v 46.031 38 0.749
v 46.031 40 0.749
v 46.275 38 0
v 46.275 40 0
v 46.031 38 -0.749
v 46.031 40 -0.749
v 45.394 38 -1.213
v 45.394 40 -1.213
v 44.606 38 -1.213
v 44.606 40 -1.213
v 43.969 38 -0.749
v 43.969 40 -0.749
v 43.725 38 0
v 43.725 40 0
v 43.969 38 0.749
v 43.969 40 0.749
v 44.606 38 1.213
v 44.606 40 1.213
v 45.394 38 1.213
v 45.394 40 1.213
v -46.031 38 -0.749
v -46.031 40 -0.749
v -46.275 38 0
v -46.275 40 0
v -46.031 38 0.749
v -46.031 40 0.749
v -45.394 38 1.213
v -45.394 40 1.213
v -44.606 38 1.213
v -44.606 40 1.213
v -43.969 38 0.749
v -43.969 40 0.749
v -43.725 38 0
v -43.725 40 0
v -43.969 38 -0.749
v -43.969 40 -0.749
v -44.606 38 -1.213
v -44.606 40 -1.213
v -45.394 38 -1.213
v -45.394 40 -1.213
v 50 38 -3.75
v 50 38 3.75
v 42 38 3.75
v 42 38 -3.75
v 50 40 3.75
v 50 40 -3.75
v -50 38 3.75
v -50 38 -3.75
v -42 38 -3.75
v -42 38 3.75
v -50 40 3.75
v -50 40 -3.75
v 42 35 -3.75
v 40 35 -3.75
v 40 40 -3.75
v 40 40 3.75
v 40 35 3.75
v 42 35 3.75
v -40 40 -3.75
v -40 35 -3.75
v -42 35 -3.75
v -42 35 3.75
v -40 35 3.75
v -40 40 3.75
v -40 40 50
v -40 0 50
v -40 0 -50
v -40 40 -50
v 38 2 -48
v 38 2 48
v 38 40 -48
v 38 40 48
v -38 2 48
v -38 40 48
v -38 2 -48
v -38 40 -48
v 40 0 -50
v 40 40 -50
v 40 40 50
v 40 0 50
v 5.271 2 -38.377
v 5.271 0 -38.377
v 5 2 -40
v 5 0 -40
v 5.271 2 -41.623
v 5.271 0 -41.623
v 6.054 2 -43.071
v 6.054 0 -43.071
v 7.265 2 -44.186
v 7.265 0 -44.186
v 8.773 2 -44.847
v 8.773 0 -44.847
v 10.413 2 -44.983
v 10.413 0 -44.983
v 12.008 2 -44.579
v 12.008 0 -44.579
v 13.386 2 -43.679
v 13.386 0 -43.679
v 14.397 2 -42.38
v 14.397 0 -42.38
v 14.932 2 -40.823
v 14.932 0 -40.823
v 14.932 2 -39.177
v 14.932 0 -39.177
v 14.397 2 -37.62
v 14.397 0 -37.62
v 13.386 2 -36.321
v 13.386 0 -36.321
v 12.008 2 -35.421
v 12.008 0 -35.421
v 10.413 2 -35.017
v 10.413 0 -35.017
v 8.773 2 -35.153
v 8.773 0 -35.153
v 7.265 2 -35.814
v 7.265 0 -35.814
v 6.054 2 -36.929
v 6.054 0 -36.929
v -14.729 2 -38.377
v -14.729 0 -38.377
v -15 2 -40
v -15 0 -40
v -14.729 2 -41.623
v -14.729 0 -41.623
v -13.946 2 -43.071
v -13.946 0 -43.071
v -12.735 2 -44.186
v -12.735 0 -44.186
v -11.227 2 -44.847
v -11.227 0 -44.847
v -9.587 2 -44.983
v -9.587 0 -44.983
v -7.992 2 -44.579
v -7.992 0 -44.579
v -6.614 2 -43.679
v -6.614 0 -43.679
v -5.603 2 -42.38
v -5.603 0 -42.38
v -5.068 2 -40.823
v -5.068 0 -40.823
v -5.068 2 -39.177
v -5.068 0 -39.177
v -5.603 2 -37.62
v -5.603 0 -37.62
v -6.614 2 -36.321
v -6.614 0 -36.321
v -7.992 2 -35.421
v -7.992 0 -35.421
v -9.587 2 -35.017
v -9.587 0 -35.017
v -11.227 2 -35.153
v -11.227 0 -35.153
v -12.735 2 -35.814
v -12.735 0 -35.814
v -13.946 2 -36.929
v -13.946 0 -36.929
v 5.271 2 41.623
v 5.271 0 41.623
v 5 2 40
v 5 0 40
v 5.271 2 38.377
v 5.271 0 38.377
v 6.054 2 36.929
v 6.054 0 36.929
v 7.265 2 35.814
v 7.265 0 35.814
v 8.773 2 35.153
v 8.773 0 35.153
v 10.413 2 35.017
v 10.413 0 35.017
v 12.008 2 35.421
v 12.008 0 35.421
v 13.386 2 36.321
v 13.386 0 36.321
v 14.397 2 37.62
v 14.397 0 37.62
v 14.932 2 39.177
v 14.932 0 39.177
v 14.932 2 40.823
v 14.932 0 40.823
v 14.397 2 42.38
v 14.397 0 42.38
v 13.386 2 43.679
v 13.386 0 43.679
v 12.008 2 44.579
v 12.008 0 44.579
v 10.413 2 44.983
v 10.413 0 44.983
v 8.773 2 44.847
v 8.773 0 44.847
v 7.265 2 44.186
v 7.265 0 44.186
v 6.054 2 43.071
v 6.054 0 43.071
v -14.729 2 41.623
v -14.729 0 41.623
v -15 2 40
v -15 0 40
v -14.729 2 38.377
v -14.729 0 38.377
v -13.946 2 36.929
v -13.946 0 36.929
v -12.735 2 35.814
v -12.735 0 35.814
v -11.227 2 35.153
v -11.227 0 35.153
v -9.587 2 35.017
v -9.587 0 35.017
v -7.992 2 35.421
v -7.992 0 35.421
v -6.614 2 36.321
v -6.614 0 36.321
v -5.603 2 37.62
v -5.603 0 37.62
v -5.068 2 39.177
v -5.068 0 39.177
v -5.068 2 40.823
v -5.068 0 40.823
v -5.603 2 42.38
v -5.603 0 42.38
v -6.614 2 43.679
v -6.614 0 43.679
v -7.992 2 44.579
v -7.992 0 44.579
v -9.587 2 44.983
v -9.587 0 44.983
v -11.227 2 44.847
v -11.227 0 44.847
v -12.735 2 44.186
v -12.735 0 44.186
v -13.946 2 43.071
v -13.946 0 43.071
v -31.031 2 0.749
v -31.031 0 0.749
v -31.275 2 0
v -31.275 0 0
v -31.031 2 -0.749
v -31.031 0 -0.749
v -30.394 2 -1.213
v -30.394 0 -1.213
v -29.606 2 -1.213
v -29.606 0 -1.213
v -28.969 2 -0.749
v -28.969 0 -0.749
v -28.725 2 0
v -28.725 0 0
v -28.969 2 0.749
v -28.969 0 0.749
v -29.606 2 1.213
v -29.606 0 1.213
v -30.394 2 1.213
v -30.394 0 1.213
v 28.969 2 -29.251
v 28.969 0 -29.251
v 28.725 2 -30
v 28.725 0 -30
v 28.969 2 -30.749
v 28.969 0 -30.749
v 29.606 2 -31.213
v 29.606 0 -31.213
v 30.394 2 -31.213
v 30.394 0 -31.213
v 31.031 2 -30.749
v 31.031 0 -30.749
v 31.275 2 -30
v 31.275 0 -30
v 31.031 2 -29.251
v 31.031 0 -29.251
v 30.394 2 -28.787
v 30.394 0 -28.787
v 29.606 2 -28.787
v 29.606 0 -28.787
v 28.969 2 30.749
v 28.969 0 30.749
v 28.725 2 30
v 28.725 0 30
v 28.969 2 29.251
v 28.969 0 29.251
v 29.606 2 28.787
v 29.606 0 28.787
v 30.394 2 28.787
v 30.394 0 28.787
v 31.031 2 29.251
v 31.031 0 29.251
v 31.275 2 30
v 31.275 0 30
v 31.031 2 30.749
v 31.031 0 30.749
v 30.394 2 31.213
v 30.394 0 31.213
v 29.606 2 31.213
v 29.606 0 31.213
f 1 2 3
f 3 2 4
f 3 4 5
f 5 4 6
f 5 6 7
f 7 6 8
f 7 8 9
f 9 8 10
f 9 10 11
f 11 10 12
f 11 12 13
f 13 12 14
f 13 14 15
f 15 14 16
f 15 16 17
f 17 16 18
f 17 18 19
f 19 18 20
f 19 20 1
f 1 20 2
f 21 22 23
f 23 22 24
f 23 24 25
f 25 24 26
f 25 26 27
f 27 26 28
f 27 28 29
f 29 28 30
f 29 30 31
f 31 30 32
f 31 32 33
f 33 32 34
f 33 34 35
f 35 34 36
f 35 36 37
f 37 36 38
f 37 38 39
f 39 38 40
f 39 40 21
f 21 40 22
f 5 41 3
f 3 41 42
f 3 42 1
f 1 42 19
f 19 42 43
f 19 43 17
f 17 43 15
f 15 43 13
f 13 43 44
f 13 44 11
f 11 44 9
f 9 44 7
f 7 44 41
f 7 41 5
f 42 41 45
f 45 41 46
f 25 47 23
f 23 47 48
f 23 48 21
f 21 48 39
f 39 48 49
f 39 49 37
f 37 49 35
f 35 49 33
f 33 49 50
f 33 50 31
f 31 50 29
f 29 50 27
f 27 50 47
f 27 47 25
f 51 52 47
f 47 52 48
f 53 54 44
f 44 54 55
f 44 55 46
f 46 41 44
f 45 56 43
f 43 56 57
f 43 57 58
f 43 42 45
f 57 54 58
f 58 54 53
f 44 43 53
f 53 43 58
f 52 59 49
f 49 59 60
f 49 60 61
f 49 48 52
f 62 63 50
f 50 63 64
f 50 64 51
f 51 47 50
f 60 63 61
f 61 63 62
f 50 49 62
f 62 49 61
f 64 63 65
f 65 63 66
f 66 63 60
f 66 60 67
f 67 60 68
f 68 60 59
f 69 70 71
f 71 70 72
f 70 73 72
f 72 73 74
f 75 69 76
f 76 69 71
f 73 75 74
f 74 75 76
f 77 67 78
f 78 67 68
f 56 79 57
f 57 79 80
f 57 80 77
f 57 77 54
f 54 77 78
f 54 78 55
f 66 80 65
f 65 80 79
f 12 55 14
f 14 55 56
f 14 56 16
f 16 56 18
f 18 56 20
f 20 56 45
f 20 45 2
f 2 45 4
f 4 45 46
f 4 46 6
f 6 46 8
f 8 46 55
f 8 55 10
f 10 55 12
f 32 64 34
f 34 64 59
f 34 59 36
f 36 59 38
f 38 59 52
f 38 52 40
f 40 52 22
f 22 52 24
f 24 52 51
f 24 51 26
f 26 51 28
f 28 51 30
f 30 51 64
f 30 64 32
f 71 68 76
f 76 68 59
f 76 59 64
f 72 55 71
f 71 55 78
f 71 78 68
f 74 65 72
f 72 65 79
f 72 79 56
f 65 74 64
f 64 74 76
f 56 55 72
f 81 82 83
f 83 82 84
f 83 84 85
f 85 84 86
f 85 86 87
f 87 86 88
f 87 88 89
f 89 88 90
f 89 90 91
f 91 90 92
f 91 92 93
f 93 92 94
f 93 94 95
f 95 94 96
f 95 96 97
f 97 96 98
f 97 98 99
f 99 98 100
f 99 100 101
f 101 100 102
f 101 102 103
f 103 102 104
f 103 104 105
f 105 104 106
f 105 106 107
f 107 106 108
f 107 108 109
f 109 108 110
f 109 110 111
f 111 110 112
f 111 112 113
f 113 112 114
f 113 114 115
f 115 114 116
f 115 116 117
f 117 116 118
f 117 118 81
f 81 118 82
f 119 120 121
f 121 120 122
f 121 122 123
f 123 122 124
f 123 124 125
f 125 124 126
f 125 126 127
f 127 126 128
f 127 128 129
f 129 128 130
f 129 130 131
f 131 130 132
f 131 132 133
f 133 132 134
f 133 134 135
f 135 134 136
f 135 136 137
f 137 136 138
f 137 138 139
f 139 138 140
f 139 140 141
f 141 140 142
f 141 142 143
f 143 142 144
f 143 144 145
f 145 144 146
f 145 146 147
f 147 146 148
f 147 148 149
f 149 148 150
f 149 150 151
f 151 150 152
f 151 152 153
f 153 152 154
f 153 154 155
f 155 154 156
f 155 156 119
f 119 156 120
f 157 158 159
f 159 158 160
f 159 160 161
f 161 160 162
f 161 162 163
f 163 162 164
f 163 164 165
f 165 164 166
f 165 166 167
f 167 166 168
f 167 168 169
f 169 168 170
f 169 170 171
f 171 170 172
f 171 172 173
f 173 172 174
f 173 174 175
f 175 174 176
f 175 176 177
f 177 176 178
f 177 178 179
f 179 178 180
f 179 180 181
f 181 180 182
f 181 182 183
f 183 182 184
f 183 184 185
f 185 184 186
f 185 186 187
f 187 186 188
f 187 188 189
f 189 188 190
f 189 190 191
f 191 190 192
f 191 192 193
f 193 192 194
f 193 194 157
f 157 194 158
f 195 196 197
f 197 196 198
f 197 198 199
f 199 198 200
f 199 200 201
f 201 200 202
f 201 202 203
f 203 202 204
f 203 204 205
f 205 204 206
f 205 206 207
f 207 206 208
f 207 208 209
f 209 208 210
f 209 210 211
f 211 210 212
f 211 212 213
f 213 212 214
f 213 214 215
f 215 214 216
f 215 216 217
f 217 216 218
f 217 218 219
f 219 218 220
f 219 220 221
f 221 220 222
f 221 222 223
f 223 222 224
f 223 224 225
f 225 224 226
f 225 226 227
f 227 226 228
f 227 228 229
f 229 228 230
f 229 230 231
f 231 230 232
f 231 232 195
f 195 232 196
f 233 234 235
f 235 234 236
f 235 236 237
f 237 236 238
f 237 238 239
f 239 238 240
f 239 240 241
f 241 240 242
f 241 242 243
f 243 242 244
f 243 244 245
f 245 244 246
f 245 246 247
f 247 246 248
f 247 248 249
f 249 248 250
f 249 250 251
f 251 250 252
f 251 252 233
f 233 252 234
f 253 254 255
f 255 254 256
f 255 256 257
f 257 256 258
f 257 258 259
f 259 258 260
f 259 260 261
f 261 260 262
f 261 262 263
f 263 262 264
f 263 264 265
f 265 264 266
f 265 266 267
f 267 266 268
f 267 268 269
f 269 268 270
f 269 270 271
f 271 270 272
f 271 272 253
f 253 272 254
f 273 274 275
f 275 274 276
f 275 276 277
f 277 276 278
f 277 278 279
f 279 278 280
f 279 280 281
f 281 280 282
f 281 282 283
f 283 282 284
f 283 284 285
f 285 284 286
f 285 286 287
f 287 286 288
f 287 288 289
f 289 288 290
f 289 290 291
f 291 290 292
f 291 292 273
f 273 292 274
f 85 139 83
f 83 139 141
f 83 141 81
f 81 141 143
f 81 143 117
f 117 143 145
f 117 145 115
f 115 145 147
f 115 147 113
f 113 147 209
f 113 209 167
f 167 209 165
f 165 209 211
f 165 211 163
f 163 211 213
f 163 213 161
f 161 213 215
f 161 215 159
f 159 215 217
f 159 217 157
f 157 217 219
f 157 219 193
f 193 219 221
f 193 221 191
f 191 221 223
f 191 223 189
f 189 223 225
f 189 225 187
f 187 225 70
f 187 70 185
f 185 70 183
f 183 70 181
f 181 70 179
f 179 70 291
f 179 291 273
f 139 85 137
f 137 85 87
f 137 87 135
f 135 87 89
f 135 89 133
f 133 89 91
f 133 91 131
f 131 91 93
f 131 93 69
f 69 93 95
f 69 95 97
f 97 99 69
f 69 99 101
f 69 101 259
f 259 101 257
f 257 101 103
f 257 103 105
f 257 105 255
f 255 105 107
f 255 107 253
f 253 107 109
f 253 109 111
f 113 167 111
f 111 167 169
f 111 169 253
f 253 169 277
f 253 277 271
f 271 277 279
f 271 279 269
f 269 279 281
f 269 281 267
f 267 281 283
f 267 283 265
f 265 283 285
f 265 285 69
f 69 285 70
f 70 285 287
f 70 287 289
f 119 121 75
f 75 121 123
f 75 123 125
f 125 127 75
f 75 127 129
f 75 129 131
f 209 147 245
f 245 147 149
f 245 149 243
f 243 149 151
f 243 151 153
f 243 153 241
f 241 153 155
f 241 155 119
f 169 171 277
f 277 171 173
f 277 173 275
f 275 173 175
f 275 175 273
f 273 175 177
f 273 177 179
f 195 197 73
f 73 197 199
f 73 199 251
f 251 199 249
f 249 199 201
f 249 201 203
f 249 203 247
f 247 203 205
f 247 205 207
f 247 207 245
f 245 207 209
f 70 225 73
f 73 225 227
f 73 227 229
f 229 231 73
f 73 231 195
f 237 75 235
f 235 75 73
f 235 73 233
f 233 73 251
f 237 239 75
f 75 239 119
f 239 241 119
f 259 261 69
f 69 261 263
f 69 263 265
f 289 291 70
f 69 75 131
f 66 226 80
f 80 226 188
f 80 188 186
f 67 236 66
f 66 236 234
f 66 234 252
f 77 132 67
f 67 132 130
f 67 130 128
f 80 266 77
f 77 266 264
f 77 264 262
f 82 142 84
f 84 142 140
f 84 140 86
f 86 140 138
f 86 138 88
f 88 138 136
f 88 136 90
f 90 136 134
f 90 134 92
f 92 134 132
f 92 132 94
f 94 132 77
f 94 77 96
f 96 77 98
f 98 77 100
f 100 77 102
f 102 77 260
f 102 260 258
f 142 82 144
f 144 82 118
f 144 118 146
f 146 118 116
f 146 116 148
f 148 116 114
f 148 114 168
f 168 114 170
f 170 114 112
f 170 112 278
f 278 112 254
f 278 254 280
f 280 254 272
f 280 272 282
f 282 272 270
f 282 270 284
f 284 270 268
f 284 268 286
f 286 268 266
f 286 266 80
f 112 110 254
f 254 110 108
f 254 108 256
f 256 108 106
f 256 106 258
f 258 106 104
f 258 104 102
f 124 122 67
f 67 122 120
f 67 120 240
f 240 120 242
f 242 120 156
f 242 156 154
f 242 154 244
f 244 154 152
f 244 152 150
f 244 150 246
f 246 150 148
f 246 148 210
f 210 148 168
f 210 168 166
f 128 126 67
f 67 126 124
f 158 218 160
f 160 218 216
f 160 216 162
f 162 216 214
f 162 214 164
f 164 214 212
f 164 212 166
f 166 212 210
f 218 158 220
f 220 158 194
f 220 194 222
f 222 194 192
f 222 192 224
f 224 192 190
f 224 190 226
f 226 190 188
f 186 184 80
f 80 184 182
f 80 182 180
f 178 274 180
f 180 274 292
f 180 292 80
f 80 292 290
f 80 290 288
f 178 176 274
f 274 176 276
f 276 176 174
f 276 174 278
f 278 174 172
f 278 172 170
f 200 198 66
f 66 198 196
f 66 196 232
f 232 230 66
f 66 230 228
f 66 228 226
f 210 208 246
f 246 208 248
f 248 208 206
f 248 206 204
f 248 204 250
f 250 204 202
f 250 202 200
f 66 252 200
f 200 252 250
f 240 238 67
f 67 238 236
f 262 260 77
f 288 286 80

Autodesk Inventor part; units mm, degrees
ref_plane "YZ Plane" through (0, 0, 0) normal (1, 0, 0) x (0, 1, 0)
ref_plane "XZ Plane" through (0, 0, 0) normal (0, 1, 0) x (-1, 0, 0)
ref_plane "XY Plane" through (0, 0, 0) normal (0, 0, 1) x (1, 0, 0)
sketch "Base" plane through (0, 0, 0) normal (0, 1, 0) x (-1, 0, 0)
  line L0 (-40, 50) -> (40, 50)
  line L1 (40, 50) -> (40, -50)
  line L2 (40, -50) -> (-40, -50)
  line L3 (-40, -50) -> (-40, 50)
  line L4 (-40, 50) -> (40, -50) construction
  line L5 (40, 50) -> (-40, -50) construction
  circle A0 centre (10, 40) radius 5
  circle A1 centre (-10, 40) radius 5
  circle A2 centre (10, -40) radius 5
  circle A3 centre (-10, -40) radius 5
  circle A4 centre (-30, 30) radius 1.275
  circle A5 centre (-30, -30) radius 1.275
  circle A6 centre (30, 0) radius 1.275
  line L6 (38, -48) -> (38, 48)
  line L7 (38, 48) -> (-38, 48)
  line L8 (-38, 48) -> (-38, -48)
  line L9 (-38, -48) -> (38, -48)
  point P0 (0, 0)
  dimension "d0" = 80
  dimension "d1" = 100
  dimension "d2" = 30
  dimension "d3" = 10
  dimension "d4" = 10
  dimension "d6" = 10
  dimension "d7" = 2.55
  dimension "d8" = 70
  dimension "d10" = 2.55
  dimension "d11" = 2
extrude "Extrusión base" add sketch "Base" along normal blind 2 contours L9 L8 L7 L6
extrude "Paredes" add sketch "Base" along normal blind 40 contours L0 L1 L2 L3
sketch "Boceto2" plane through (-40, 0, -50) normal (-1, 0, 0) x (0, 0, 1)
  line L0 (0, 40) -> (100, 40) projected
  line L1 (98, 40) -> (2, 40) projected
  line L2 (46.25, 35) -> (53.75, 35)
  line L3 (53.75, 35) -> (53.75, 40)
  line L4 (53.75, 40) -> (46.25, 40)
  line L5 (46.25, 40) -> (46.25, 35)
  line L6 (46.25, 35) -> (53.75, 40) construction
  line L7 (53.75, 35) -> (46.25, 40) construction
  point P0 (50, 0)
  point P1 (50, 37.5)
  dimension "d16" = 2.5
  dimension "d17" = 7.5
extrude "Extrusión3" add sketch "Boceto2" along normal blind 2
mirror "Simetría1" about plane through (0, 0, 0) normal (1, 0, 0) of "Extrusión3"
sketch "Boceto3" plane through (-42, 0, -50) normal (-1, 0, 0) x (0, 0, 1)
  line L0 (53.75, 40) -> (46.25, 40) projected
  line L1 (53.75, 40) -> (53.75, 35) projected
  line L2 (46.25, 38) -> (53.75, 38)
  line L3 (53.75, 38) -> (53.75, 40)
  line L4 (53.75, 40) -> (46.25, 40)
  line L5 (46.25, 40) -> (46.25, 38)
  line L6 (46.25, 38) -> (53.75, 40) construction
  line L7 (53.75, 38) -> (46.25, 40) construction
  point P0 (50, 0)
  point P1 (50, 39)
  dimension "d20" = 1
extrude "Extrusión4" add sketch "Boceto3" along normal blind 8
mirror "Simetría2" about plane through (0, 0, 0) normal (1, 0, 0) of "Extrusión4"
sketch "Boceto4" plane through (0, 40, 0) normal (0, 1, 0) x (1, 0, 0)
  line L0 (-50, -3.75) -> (-50, 3.75) projected
  line L1 (-40, -3.75) -> (-50, -3.75) projected
  circle A0 centre (-45, 0) radius 1.275
  point P0 (0, 0)
  dimension "d23" = 5
  dimension "d24" = 3.75
  dimension "d25" = 2.55
hole "Agujero1" at (-45, 40, 0) direction (0, -1, 0) diameter 2.55 end through all
mirror "Simetría3" about plane through (0, 0, 0) normal (1, 0, 0) of "Agujero1"
properties part number "Contenedor Puente H v1.0"
